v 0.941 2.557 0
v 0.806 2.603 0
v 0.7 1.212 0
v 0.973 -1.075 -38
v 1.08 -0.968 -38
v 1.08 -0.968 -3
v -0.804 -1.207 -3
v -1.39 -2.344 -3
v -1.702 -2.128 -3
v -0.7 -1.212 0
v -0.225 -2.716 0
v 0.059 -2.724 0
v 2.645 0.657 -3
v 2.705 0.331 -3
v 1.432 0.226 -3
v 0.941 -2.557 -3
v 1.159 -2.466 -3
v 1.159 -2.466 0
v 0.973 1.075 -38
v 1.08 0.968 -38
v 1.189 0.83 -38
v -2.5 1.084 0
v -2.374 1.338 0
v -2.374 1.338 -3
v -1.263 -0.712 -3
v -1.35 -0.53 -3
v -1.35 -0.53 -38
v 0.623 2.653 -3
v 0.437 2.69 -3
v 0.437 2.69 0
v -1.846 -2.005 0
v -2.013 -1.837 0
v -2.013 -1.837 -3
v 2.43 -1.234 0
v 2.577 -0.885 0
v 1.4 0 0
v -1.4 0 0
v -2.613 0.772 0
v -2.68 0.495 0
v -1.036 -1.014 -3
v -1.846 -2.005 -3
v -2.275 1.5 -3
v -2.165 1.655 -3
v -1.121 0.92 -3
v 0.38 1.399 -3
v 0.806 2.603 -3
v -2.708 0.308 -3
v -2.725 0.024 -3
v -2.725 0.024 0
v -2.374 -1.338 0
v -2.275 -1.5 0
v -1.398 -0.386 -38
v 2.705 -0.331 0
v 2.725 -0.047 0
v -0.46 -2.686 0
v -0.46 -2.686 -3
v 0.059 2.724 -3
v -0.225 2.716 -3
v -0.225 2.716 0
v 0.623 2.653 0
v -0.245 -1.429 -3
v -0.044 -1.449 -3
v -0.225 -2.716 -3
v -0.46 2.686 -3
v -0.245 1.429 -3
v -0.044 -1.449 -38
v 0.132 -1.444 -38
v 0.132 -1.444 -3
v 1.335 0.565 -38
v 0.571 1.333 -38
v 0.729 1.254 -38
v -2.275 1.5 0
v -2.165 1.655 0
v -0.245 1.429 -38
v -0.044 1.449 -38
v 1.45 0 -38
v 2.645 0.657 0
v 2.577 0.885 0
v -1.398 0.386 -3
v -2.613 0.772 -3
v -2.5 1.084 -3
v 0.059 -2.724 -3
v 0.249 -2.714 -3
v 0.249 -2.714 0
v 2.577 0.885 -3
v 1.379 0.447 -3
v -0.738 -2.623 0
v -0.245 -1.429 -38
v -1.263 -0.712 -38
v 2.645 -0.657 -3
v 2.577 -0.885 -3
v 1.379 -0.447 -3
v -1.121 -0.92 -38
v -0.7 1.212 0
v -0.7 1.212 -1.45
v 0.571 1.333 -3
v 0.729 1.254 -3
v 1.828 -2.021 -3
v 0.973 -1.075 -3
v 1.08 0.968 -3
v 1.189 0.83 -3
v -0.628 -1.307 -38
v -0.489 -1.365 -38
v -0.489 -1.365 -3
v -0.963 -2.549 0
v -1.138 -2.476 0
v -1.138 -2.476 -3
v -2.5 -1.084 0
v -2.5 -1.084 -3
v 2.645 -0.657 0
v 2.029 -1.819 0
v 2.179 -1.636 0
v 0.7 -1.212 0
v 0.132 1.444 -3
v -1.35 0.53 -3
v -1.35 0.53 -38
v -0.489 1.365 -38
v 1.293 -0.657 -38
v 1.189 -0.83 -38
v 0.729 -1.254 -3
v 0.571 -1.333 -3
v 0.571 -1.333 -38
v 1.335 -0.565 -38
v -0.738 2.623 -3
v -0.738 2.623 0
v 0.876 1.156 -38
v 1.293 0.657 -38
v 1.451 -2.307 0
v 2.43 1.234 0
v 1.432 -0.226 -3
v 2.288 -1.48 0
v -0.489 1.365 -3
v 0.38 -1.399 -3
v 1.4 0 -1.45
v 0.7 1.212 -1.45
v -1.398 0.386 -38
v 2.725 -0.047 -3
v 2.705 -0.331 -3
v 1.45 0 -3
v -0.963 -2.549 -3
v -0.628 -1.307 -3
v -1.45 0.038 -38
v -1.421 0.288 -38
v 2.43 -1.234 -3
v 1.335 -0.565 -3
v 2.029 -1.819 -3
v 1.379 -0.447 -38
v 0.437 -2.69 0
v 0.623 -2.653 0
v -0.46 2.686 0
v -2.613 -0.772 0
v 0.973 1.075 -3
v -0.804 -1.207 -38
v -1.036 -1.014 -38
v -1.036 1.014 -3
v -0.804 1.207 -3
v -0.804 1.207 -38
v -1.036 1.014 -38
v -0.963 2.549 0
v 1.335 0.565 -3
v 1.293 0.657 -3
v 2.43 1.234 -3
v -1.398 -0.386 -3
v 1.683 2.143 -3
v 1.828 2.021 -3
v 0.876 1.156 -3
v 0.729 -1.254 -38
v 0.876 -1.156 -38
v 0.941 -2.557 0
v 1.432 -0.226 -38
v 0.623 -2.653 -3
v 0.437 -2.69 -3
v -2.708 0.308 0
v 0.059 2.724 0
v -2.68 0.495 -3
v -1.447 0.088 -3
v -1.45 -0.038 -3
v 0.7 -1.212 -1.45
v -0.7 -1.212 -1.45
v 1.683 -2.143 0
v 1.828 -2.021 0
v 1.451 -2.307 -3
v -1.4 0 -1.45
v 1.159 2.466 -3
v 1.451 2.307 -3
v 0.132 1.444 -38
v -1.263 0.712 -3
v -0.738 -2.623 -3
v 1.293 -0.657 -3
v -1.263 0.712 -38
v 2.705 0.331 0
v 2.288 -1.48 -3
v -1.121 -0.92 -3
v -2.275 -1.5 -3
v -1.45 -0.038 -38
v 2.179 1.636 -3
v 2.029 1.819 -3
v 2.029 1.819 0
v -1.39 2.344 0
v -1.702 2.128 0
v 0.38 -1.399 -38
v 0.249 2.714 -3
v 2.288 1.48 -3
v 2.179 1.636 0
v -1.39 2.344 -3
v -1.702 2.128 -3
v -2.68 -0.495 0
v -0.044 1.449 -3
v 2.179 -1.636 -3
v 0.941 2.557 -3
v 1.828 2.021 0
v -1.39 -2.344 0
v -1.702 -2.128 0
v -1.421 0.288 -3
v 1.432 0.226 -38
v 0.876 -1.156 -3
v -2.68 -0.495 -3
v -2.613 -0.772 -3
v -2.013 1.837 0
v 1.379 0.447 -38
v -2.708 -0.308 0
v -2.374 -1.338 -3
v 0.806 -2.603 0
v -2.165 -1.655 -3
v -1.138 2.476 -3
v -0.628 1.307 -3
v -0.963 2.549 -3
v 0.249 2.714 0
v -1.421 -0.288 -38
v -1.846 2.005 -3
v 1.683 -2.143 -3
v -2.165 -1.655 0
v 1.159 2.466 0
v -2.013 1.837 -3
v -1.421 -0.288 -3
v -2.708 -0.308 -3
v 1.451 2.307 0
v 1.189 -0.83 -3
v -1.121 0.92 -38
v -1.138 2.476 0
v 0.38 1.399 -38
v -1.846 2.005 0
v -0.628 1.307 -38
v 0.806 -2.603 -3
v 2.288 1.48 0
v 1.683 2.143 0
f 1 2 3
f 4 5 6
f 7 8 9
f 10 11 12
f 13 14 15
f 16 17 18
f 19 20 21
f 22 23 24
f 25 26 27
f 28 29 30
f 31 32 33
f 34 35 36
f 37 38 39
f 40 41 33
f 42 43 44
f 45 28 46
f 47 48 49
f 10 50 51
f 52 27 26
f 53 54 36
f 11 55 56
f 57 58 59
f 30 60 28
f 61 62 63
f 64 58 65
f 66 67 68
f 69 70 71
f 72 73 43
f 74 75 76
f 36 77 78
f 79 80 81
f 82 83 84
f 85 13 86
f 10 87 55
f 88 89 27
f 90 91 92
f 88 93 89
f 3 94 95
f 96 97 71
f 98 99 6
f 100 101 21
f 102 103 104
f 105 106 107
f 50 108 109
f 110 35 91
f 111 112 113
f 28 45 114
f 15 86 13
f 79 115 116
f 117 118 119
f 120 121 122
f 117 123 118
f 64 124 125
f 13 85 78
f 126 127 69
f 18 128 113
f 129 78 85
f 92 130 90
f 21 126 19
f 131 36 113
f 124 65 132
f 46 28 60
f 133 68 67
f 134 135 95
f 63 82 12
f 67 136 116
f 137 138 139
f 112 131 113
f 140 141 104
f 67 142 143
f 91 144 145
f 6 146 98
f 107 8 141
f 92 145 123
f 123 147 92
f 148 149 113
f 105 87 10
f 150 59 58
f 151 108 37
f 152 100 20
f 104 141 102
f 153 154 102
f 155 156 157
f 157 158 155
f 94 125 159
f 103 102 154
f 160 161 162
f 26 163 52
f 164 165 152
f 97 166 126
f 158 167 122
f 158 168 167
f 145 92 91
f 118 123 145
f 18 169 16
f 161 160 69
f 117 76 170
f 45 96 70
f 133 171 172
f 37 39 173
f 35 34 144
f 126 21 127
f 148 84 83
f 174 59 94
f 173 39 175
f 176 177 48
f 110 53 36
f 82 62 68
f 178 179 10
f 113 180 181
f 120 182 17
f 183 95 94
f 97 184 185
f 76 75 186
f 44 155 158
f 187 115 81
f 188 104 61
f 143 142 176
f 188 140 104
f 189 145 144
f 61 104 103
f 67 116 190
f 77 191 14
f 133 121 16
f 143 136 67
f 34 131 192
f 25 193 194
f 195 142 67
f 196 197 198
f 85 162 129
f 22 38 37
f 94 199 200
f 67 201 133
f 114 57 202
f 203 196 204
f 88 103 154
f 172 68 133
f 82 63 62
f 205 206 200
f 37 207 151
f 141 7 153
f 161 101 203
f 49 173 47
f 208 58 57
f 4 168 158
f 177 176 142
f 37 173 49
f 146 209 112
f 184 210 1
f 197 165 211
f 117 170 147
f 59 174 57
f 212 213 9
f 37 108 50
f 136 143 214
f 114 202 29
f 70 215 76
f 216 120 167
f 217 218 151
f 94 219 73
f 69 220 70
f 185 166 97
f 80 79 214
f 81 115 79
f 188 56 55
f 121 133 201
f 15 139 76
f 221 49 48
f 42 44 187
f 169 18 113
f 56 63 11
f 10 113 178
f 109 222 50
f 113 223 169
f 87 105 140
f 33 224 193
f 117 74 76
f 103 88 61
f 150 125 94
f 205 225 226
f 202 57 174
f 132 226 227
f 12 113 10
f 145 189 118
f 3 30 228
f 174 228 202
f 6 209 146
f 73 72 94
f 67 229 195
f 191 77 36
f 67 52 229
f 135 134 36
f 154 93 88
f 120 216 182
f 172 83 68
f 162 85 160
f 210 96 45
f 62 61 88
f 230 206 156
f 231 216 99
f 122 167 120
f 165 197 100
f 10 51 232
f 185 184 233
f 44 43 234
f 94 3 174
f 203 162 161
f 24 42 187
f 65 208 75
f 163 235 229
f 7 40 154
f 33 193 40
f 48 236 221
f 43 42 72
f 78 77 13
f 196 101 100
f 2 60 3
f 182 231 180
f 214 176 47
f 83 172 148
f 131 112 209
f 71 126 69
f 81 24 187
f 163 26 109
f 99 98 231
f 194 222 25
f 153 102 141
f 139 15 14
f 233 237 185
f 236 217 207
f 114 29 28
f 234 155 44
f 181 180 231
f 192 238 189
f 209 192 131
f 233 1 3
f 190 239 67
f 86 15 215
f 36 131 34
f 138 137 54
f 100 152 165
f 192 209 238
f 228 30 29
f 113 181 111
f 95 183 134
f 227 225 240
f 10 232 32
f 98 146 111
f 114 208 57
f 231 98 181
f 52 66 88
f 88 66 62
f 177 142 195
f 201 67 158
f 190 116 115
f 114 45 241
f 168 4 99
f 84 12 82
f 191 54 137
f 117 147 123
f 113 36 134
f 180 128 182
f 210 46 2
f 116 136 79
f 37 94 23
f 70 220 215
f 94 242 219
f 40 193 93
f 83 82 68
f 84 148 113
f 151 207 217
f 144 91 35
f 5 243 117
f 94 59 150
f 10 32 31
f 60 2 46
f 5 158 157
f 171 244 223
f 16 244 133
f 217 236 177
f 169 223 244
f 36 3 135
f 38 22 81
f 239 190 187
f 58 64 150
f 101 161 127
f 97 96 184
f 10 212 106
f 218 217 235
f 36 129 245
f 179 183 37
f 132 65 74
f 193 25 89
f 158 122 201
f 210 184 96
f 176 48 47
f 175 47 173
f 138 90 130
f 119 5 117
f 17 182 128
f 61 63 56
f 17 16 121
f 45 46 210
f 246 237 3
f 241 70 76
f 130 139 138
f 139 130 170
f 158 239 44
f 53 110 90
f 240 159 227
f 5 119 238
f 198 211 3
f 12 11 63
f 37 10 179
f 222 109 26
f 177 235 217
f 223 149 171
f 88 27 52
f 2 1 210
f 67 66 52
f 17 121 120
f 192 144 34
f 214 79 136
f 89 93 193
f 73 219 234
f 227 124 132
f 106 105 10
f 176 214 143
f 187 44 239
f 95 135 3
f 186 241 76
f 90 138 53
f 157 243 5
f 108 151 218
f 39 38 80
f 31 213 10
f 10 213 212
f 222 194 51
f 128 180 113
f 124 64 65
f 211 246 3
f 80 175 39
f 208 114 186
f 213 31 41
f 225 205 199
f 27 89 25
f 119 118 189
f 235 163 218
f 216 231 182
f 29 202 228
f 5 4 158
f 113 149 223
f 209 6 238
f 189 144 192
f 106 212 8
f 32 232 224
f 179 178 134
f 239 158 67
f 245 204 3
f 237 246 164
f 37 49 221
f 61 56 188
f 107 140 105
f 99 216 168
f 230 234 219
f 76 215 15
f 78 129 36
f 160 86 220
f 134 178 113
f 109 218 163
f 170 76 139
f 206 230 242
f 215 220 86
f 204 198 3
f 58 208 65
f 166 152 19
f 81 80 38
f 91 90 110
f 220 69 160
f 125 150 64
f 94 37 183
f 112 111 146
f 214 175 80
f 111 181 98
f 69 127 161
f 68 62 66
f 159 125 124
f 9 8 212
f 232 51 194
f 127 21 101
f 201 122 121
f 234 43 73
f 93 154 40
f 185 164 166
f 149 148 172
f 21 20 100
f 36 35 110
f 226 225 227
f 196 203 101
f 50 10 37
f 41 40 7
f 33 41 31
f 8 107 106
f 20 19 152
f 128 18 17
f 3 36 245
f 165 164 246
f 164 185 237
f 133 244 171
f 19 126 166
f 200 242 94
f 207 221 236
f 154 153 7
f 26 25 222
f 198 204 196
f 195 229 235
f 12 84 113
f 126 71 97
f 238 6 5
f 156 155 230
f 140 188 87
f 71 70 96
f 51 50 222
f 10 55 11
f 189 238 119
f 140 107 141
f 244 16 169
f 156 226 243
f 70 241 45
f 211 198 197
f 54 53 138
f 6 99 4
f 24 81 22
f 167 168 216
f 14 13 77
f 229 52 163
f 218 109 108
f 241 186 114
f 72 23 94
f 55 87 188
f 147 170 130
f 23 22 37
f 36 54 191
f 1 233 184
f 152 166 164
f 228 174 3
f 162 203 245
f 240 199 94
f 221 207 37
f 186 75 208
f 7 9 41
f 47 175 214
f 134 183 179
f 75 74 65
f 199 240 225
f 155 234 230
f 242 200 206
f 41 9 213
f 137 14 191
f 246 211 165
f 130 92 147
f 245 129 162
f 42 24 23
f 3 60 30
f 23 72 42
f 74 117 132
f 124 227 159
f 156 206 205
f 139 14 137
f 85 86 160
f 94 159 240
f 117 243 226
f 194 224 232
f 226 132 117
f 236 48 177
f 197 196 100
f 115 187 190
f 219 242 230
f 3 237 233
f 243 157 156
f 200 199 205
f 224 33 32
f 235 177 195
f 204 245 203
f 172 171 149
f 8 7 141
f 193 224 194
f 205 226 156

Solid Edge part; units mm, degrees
sketch "Sketch1" plane through (0, 0, 0) normal (0, 0, 1) x (1, 0, 0)
  circle A0 centre (0, 0) radius 2.725
extrude "Protrusion1" add sketch "Sketch1" against normal blind 3
sketch "Sketch2" plane through (0, 0, 0) normal (0, 0, 1) x (1, 0, 0)
  line L0 (-0.7, -1.2124) -> (-1.05, -0.6062)
  line L1 (-1.4, 0) -> (-1.05, -0.6062)
  line L2 (-1.4, 0) -> (-1.05, 0.6062)
  line L3 (-0.7, 1.2124) -> (-1.05, 0.6062)
  line L4 (-0.7, 1.2124) -> (0, 1.2124)
  line L5 (0.7, 1.2124) -> (0, 1.2124)
  line L6 (0.7, 1.2124) -> (1.05, 0.6062)
  line L7 (1.4, 0) -> (1.05, 0.6062)
  line L8 (1.4, 0) -> (1.05, -0.6062)
  line L9 (0.7, -1.2124) -> (1.05, -0.6062)
  line L10 (0.7, -1.2124) -> (0, -1.2124)
  line L11 (-0.7, -1.2124) -> (0, -1.2124)
extrude "ExtrudedCutout_1" cut sketch "Sketch2" against normal blind 1.45
sketch "Sketch3" plane through (0, 0, -3) normal (0, 0, -1) x (1, 0, 0)
  circle A0 centre (0, 0) radius 1.45
extrude "ExtrudedProtrusion_2" add sketch "Sketch3" along normal blind 35
